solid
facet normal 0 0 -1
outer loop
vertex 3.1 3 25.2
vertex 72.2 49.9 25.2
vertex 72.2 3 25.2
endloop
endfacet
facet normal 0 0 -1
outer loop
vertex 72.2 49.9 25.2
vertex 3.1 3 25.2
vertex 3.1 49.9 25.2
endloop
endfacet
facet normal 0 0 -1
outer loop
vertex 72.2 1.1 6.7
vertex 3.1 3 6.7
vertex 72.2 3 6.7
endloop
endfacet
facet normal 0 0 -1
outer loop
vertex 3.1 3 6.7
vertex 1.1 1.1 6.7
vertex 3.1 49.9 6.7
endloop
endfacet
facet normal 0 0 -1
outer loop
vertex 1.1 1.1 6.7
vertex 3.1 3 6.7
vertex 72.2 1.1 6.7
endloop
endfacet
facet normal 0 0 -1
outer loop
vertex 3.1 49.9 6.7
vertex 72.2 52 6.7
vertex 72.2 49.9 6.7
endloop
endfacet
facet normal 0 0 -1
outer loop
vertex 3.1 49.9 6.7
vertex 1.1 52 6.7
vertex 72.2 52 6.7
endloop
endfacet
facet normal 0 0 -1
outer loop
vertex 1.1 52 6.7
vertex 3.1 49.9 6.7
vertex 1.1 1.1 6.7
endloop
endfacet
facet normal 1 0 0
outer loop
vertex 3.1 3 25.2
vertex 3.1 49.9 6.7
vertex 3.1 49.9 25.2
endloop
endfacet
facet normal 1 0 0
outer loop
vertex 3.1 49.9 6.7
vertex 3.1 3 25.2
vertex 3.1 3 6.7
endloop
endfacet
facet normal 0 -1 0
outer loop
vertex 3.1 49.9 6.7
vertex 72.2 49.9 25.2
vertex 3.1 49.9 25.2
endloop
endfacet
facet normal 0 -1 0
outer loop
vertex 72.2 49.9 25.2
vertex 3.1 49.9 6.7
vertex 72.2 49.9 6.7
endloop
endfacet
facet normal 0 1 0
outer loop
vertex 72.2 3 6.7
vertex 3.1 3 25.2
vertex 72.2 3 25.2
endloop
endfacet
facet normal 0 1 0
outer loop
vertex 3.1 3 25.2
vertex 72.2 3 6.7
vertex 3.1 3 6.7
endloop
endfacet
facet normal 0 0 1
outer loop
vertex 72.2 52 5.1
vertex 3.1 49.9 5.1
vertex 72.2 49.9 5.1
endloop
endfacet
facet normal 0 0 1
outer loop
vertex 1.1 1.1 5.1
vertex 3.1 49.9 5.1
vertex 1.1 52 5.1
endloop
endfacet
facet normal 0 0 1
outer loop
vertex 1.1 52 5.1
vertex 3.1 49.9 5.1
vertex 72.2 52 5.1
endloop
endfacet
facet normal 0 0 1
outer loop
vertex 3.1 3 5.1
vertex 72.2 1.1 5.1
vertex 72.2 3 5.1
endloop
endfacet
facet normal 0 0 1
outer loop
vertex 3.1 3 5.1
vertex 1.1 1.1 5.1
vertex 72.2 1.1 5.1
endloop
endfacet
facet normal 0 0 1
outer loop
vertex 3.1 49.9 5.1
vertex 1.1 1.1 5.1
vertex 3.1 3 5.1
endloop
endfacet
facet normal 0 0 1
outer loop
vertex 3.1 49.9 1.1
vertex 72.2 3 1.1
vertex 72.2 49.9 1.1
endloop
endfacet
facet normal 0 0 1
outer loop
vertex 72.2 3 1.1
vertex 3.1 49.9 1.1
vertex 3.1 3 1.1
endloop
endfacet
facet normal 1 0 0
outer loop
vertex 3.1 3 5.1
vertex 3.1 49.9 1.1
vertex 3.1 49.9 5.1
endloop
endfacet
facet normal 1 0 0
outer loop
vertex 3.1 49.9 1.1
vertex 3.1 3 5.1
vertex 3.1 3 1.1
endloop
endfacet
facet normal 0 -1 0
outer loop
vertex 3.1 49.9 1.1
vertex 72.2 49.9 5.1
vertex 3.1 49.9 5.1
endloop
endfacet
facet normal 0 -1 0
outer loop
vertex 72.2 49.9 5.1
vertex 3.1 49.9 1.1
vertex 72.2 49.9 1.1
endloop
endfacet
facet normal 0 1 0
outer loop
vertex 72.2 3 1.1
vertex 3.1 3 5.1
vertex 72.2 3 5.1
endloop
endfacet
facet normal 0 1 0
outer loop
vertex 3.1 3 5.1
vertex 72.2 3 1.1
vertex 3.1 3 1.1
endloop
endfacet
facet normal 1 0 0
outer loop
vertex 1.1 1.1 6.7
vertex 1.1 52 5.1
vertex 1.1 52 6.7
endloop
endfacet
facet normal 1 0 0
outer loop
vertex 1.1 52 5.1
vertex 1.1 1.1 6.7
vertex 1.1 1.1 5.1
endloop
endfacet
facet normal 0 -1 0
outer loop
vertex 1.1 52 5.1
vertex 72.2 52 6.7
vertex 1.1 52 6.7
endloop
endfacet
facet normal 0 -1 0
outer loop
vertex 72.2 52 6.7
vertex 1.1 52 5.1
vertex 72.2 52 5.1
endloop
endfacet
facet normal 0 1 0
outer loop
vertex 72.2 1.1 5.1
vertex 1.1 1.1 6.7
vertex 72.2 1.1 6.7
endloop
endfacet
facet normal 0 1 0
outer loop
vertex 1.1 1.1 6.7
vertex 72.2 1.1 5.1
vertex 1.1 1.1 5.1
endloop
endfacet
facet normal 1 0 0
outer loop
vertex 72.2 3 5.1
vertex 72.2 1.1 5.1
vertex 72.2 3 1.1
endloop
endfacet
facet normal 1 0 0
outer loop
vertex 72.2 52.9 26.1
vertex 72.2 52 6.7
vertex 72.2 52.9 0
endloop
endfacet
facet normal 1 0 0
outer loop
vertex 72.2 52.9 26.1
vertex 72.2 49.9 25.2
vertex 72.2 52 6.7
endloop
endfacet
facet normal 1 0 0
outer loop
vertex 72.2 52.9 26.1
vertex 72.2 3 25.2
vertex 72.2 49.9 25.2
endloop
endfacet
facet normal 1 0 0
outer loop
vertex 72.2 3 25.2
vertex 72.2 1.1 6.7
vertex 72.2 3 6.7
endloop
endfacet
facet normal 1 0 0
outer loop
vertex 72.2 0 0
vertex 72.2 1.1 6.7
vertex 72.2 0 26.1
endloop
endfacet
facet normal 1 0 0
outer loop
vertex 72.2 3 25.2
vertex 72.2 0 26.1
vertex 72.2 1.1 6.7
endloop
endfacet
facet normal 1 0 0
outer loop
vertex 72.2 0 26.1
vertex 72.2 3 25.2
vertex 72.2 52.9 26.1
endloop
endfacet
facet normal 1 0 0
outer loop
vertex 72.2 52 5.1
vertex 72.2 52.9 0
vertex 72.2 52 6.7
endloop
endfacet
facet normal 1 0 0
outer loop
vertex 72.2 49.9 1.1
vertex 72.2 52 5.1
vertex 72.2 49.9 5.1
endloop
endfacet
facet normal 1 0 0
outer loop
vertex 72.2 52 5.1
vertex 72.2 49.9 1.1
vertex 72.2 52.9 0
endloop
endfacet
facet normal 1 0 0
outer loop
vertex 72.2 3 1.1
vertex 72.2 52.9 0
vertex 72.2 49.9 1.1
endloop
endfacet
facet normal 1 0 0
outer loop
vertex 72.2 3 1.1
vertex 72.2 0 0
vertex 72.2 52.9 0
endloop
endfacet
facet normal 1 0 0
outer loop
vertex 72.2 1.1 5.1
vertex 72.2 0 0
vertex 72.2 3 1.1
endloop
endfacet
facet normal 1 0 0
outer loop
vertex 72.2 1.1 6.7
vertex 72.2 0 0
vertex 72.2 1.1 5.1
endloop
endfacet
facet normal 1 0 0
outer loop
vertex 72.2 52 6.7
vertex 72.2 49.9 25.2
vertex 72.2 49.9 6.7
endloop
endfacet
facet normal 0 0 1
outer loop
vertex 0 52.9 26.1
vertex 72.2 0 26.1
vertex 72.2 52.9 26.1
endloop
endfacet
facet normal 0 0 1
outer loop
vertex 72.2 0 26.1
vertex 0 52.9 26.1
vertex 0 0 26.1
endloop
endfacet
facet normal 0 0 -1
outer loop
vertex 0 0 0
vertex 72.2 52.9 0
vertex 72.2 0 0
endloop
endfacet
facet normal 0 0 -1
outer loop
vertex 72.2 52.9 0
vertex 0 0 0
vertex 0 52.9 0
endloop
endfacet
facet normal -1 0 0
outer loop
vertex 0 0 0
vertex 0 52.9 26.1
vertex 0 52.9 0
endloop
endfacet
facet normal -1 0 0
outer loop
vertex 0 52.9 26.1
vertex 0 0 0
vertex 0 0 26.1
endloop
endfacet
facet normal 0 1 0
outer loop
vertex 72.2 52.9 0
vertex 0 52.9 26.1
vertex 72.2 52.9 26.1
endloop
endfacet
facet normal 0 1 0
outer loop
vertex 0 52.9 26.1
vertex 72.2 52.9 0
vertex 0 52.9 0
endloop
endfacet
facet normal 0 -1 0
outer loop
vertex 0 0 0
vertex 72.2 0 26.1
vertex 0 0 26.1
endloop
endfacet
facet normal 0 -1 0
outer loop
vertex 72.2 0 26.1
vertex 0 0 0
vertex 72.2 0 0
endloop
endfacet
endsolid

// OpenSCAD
$fn = 60;

e_m = 0.1;      //3D-printing error margin

//circuit board
cb_w = 70;    //circuit board width
cb_d = 50.1+0.6;    //circuit board depth
cb_h = 1.4;     //circuit board height

//circuit board placement
//cb_p_h = 4;   //height
cb_p_s_d = 2;   //sloth depth
cb_b_s = 1;     // back slot yes(1) or no(0)
//circuit board height needs to be changed by the circuit board height

//component opening
cb_p_h_t = 18.5;   //height top
cb_p_h_b = 4;   //height bottom

//casing
c_t = 1;        //Case thick
c_w = c_t*2+e_m*2+cb_w;       //case width
c_d = c_t*2+e_m*2+cb_d;       //case depth
c_h = c_t*2+e_m*2+cb_h+cb_p_h_b+cb_p_h_t;       //case height
echo(c_w); //68.7
echo(c_d); //48.6
echo(c_h); //22.8
//Case height needs to be changed by the circuit board height

circuit_holder();

module circuit_holder(){
    difference(){
        cube([c_w, c_d, c_h]);
        pcb_no_go_zone();
    }
}

module pcb_no_go_zone(){
    union(){
        union(){
            if ( cb_b_s == 1){
                translate([(c_w-cb_w)+c_t-e_m*2+e_m,c_t+cb_p_s_d,(cb_p_h_b+e_m + c_t)+cb_h+e_m*2])
                cube([(cb_w+e_m*2)-cb_p_s_d + c_t, (cb_d+e_m*2)-cb_p_s_d*2, cb_p_h_t]);
                translate([(c_w-cb_w)+c_t-e_m*2+e_m,c_t+cb_p_s_d,(cb_p_h_b+e_m + c_t) - cb_p_h_b])
                cube([(cb_w+e_m*2)-cb_p_s_d+ c_t, (cb_d+e_m*2)-cb_p_s_d*2, cb_p_h_b]);
            }
            else{
                translate([(c_w-cb_w)-c_t-e_m*2+e_m,c_t+cb_p_s_d,(cb_p_h_b+e_m+c_t)+cb_h+e_m*2])
                cube([(cb_w+e_m*2)+ c_t, (cb_d+e_m*2)-cb_p_s_d*2, cb_p_h_t]);
                translate([(c_w-cb_w)-c_t-e_m*2+e_m,c_t+cb_p_s_d,(cb_p_h_b+e_m+c_t) - cb_p_h_b])
                cube([(cb_w+e_m*2)+ c_t, (cb_d+e_m*2)-cb_p_s_d*2, cb_p_h_b]);
            }
        }
        translate([(c_w-cb_w)-c_t-e_m*2+e_m,c_t+e_m,cb_p_h_b+e_m+c_t])
        cube([cb_w+e_m*2+ c_t, cb_d+e_m*2, cb_h+e_m*2]);
    }
}
